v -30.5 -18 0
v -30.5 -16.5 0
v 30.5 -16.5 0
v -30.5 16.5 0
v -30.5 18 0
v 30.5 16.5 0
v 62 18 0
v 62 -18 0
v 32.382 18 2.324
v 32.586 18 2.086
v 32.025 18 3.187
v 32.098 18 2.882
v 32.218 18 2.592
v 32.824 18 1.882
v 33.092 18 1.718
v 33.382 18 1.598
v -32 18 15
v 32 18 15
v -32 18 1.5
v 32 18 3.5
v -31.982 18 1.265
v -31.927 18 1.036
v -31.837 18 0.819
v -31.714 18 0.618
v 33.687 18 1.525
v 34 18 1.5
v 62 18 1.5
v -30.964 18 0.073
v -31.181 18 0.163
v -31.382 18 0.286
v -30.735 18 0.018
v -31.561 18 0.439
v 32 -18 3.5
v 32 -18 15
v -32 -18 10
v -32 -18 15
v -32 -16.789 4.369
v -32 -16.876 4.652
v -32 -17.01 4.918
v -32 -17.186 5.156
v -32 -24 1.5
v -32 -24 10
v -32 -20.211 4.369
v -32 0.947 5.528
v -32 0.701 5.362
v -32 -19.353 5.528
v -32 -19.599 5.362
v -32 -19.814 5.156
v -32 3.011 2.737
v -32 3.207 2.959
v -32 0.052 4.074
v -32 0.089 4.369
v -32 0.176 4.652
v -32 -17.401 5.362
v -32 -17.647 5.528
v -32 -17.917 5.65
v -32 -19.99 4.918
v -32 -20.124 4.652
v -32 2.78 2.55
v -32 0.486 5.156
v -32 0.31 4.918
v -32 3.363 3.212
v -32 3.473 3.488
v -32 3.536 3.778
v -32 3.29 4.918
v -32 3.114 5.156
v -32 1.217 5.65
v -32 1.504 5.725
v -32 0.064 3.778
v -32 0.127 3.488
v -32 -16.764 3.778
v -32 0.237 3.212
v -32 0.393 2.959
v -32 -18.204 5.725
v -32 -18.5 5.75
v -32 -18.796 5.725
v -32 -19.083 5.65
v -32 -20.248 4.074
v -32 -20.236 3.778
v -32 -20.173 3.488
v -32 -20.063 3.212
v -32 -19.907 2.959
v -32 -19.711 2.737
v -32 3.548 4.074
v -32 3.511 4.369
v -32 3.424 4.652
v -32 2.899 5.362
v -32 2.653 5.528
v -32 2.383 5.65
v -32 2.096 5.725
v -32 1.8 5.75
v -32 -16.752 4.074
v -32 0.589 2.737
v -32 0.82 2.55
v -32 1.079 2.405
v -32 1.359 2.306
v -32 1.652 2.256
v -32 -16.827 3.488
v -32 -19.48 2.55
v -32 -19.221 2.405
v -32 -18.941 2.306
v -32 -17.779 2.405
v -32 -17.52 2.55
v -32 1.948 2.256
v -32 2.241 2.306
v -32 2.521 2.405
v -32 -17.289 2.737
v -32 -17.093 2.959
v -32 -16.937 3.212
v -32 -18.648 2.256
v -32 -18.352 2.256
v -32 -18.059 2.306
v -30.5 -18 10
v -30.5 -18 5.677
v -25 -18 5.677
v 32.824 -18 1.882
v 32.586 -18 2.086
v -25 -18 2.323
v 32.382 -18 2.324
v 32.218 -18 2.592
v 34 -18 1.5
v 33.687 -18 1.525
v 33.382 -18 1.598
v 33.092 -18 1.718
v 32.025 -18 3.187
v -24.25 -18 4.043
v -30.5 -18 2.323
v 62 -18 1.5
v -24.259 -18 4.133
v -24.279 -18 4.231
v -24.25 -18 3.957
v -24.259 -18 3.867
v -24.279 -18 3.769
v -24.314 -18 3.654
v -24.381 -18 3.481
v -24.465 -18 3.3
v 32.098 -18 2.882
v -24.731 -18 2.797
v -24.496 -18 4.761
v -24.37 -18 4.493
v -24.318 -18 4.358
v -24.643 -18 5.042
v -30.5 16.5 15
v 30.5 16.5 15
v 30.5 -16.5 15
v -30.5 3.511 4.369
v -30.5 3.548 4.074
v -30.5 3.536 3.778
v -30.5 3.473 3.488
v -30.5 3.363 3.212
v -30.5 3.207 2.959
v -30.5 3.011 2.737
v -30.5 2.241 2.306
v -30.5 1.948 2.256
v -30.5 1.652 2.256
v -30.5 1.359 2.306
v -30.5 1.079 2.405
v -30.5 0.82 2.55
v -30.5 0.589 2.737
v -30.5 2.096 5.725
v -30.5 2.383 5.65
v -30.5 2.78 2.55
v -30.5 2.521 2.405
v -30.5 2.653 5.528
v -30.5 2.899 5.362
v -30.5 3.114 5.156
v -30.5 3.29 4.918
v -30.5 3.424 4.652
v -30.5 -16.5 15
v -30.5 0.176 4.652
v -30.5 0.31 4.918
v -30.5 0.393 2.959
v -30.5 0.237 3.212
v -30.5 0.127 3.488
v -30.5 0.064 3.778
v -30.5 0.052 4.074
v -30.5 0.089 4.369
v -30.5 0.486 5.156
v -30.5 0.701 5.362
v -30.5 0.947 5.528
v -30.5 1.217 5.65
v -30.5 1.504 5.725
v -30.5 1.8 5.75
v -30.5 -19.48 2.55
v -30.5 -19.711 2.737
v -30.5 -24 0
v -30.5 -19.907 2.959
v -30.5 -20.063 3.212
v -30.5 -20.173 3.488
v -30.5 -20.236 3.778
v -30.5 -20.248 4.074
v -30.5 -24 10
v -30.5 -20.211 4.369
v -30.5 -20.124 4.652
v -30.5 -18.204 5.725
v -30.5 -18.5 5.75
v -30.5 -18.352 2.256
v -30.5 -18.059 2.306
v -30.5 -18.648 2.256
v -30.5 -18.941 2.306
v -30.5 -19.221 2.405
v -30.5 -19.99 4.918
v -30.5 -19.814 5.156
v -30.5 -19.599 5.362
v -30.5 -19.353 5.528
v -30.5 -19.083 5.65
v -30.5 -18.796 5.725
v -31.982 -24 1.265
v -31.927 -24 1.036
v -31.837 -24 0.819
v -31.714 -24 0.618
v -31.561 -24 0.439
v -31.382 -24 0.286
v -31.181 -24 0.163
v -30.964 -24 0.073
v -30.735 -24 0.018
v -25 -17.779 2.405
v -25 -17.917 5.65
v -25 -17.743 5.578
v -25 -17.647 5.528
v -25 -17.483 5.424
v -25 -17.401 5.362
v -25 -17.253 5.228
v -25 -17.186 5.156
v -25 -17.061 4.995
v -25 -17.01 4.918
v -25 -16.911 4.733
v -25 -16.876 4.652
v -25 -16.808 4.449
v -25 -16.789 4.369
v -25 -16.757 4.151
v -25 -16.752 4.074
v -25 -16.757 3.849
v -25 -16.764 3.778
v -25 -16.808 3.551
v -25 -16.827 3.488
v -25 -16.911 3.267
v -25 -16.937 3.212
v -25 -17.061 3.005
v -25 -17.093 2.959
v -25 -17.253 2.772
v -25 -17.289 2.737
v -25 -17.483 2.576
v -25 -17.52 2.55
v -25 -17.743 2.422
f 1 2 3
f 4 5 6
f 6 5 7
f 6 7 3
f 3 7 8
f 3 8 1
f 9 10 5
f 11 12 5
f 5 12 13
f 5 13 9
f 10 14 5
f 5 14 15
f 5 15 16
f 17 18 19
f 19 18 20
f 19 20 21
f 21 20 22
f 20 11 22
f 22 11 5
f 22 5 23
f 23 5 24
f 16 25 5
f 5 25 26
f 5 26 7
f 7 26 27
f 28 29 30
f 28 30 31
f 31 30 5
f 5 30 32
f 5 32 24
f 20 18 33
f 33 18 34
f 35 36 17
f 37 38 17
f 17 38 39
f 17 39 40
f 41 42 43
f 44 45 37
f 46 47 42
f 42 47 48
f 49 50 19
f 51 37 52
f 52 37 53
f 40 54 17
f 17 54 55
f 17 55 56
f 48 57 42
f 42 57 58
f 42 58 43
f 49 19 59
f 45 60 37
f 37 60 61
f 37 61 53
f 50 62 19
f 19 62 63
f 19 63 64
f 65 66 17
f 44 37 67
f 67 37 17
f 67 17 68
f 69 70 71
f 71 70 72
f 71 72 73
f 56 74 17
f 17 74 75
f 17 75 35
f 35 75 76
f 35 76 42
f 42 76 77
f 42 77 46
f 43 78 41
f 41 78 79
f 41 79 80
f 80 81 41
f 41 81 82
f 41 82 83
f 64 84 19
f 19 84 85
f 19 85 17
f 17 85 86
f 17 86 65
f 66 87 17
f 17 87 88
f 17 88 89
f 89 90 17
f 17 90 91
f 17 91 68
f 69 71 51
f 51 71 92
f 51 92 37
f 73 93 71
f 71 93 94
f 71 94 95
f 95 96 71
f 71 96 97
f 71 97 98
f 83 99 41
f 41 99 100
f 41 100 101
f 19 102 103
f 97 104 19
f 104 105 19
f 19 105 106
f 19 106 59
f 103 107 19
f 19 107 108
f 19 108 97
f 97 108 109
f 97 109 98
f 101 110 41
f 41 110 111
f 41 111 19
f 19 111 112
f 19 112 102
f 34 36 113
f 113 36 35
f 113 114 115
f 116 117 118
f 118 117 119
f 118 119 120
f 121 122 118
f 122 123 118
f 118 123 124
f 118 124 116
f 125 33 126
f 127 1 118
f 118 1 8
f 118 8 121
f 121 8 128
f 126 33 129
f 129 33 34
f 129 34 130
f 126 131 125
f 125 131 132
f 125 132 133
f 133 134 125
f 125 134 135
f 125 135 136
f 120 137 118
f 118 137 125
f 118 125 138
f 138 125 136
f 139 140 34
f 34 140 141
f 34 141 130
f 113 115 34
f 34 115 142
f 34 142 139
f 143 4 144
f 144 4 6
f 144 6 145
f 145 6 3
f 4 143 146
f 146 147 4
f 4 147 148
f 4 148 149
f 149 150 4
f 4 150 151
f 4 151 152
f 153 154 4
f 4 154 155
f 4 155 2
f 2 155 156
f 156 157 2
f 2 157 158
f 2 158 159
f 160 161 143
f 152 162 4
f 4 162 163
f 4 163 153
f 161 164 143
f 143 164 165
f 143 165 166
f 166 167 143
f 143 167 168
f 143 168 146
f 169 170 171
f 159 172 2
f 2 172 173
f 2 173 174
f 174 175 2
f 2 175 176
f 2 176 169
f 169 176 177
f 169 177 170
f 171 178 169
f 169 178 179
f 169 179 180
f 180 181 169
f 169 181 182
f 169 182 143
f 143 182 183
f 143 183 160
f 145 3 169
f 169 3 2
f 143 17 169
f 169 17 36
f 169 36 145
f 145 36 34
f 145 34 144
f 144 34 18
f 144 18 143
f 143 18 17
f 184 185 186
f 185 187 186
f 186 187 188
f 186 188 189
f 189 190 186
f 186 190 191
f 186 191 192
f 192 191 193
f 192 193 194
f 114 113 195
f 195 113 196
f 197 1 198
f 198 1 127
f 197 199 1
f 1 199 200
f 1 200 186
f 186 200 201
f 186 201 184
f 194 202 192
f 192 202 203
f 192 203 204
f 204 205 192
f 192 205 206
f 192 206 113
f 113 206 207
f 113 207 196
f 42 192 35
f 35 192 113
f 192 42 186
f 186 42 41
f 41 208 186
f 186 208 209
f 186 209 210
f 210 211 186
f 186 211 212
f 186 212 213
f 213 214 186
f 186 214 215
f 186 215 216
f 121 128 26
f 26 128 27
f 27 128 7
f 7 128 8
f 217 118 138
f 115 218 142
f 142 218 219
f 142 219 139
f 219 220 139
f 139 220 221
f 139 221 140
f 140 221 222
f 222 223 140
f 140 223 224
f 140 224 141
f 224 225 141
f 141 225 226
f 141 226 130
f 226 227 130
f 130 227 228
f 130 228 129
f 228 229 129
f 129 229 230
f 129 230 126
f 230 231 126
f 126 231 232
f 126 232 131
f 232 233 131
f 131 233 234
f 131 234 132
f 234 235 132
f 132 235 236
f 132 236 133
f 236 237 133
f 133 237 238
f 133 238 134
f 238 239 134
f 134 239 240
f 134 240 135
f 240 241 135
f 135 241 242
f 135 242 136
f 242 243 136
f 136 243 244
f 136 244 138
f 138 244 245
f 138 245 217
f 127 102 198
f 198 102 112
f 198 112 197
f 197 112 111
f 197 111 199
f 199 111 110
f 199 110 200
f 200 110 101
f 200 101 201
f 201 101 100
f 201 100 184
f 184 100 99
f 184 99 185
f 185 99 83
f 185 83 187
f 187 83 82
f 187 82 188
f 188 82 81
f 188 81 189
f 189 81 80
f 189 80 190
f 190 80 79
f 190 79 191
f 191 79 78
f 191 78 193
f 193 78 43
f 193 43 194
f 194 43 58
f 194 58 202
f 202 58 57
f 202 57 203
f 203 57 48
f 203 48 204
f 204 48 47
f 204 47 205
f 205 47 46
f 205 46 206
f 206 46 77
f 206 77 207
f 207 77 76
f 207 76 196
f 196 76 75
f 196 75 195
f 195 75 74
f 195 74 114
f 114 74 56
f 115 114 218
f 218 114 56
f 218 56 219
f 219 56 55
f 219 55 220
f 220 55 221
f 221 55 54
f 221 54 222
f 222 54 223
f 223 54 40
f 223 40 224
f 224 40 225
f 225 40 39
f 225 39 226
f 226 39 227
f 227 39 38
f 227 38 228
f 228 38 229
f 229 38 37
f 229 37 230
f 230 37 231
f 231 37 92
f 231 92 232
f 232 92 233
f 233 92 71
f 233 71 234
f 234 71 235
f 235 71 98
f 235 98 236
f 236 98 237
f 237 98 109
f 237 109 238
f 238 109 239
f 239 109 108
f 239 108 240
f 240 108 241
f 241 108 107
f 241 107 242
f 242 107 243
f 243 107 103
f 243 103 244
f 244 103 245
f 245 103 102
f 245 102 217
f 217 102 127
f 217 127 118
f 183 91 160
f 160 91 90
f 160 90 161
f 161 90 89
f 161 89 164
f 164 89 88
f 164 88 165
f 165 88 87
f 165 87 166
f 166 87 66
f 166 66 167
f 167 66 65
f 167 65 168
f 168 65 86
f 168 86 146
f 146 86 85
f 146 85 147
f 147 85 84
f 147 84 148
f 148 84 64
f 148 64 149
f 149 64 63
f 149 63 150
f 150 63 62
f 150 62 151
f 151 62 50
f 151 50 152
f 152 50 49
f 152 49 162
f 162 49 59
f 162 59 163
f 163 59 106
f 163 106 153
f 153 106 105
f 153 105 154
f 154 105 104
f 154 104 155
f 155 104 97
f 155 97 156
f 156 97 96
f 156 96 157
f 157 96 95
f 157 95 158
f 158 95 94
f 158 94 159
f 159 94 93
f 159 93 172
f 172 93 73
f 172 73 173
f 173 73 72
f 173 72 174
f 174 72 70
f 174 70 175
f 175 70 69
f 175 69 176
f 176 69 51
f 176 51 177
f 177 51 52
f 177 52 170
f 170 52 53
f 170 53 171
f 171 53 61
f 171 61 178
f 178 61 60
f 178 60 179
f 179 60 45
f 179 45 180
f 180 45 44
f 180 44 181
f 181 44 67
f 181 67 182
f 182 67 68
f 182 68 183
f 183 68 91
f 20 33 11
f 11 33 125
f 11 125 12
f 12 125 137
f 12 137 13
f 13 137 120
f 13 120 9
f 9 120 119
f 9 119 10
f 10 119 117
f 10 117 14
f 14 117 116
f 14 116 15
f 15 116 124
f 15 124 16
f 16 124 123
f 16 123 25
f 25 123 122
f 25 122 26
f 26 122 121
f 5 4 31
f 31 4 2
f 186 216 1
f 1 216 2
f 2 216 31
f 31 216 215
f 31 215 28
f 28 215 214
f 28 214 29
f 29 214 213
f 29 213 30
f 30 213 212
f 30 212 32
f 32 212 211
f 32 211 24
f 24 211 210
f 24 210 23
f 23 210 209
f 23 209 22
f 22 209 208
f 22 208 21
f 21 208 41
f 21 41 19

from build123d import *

# Parameters (mm, degrees)
LOFT_THIN1_OUTLINE_W      = 64
LOFT_THIN1_OUTLINE_H      = 36
LOFT_THIN1_OUTLINE_W_2    = 61
LOFT_THIN1_OUTLINE_H_2    = 33
LOFT_THIN1_DEPTH          = 5
SKETCH3_4_W               = 64
SKETCH3_4_H               = 36
SKETCH3_4_W_2             = 61
SKETCH3_4_H_2             = 33
EXTRUDE_THIN1_DEPTH       = 10
SKETCH8_W                 = 1.5
SKETCH8_H                 = 10
BOSS_EXTRUDE3_DEPTH       = 6
SKETCH7_W                 = 1.5
SKETCH7_H                 = 36
BOSS_EXTRUDE2_DEPTH       = 30
F_3_0MM_DOWEL_HOLE1_D     = 3.5
F_3_0MM_DOWEL_HOLE1_DEPTH = 7
F_3_0MM_DOWEL_HOLE1_TIP   = 1.051506083
FILLET1_R                 = 2
FILLET2_START             = -25
FILLET2_DEPTH             = 44


with BuildPart() as part:
    # Loft-Thin1: read off the stored shape, not the designer's step
    # Loft-Thin1 outline → Loft-Thin1 (new body)
    with BuildSketch(Plane.XY):
        Rectangle(LOFT_THIN1_OUTLINE_W, LOFT_THIN1_OUTLINE_H)
        Rectangle(LOFT_THIN1_OUTLINE_W_2, LOFT_THIN1_OUTLINE_H_2, mode=Mode.SUBTRACT)
    extrude(amount=LOFT_THIN1_DEPTH)

    # Sketch3<4> → Extrude-Thin1 (add)
    with BuildSketch(Plane.XY.offset(5)):
        Rectangle(SKETCH3_4_W, SKETCH3_4_H)
        Rectangle(SKETCH3_4_W_2, SKETCH3_4_H_2, mode=Mode.SUBTRACT)
    extrude(amount=EXTRUDE_THIN1_DEPTH)

    # Sketch8 → Boss-Extrude3 (add)
    with BuildSketch(Plane.XZ.offset(18)):
        with Locations((-31.25, 5)):
            Rectangle(SKETCH8_W, SKETCH8_H)
    extrude(amount=BOSS_EXTRUDE3_DEPTH)

    # Sketch7 → Boss-Extrude2 (add)
    with BuildSketch(Plane(origin=(32, 0, 0), x_dir=(0, 0, -1), z_dir=(1, 0, 0))):
        with Locations((-0.75, 0)):
            Rectangle(SKETCH7_W, SKETCH7_H)
    extrude(amount=BOSS_EXTRUDE2_DEPTH)

    # Ø3.0mm Dowel Hole1
    with Locations(Plane.ZY.offset(32)):
        with Locations((4, 1.8), (4, -18.5)):
            Hole(F_3_0MM_DOWEL_HOLE1_D / 2, depth=F_3_0MM_DOWEL_HOLE1_DEPTH)
            with Locations((0, 0, -(F_3_0MM_DOWEL_HOLE1_DEPTH + F_3_0MM_DOWEL_HOLE1_TIP / 2))):  # 118° drill point
                Cone(0, F_3_0MM_DOWEL_HOLE1_D / 2, F_3_0MM_DOWEL_HOLE1_TIP, mode=Mode.SUBTRACT)

    # Fillet1
    fillet1_edges = [part.edges().sort_by_distance(p)[0] for p in [
        (32, 0, 1.5),
    ]]
    fillet(fillet1_edges, radius=FILLET1_R)

    # Fillet2: read off the stored shape, not the designer's step
    # Fillet2 outline → Fillet2 (cut)
    with BuildSketch(Plane(origin=(0, 0, 0), x_dir=(1, 0, 0), z_dir=(0, 1, 0)).offset(FILLET2_START)):
        with BuildLine():
            Line((-32, 0), (-32, -1.5))
            ThreePointArc((-32, -1.5), (-31.560660172, -0.439339828), (-30.5, 0))
            Line((-30.5, 0), (-32, 0))
        make_face()
    extrude(amount=FILLET2_DEPTH, mode=Mode.SUBTRACT)


solid = part.part
